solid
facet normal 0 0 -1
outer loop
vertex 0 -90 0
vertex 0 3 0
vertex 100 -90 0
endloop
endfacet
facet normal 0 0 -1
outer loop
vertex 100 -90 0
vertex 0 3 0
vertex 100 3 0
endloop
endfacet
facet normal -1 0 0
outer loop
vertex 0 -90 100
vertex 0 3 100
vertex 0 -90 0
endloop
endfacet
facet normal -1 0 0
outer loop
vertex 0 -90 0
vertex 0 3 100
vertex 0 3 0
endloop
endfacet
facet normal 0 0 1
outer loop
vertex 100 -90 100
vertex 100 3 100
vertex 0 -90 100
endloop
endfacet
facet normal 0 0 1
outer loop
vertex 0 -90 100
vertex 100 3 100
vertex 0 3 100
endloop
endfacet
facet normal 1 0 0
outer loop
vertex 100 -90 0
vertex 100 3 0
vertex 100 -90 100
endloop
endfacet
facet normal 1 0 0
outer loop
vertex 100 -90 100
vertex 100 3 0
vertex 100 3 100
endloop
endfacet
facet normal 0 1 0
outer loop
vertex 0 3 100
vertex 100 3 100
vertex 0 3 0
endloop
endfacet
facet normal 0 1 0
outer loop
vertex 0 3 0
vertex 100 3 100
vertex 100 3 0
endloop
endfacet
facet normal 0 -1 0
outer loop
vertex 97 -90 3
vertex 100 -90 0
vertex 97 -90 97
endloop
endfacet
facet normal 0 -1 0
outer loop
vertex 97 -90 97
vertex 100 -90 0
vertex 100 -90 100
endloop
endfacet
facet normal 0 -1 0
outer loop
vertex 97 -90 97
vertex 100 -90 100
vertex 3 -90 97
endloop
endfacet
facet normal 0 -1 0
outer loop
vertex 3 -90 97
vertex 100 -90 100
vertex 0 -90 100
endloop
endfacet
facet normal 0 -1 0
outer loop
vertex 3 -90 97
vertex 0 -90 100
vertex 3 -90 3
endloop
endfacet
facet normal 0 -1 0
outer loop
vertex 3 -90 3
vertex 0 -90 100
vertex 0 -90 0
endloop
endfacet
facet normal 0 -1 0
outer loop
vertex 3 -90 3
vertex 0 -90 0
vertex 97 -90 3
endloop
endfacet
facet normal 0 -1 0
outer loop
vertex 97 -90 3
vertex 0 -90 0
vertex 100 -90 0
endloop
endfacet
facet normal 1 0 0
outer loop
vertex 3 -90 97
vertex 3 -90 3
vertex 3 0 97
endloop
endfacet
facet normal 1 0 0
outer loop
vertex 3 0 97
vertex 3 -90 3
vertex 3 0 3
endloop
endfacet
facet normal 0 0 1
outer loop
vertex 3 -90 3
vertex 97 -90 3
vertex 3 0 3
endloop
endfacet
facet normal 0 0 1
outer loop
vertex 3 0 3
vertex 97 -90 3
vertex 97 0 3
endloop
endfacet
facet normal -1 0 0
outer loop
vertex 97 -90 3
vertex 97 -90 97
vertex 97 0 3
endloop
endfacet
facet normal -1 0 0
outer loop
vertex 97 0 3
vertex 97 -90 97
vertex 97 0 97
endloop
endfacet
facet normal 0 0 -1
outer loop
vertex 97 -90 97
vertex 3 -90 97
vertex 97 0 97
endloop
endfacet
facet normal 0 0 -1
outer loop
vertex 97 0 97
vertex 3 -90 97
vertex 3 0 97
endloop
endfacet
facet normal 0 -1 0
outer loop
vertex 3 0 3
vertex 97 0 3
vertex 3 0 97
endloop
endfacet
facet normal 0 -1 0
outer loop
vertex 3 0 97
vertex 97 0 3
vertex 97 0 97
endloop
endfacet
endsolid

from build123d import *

# Parameters (mm, degrees)
SKETCH_1_W      = 100
SKETCH_1_H      = 100
EXTRUDE_1_DEPTH = 3
SKETCH_1_3_W    = 100
SKETCH_1_3_H    = 100
SKETCH_1_3_W_2  = 94
SKETCH_1_3_H_2  = 94
EXTRUDE_2_DEPTH = 90


with BuildPart() as part:
    # 草图1 → 凸台-拉伸1 (new body)
    with BuildSketch(Plane(origin=(0, 0, 0), x_dir=(1, 0, 0), z_dir=(0, 1, 0))):
        with Locations((50, -50)):
            Rectangle(SKETCH_1_W, SKETCH_1_H)
    extrude(amount=EXTRUDE_1_DEPTH)

    # 草图1<3> → 凸台-拉伸2 (add)
    with BuildSketch(Plane(origin=(0, 0, 0), x_dir=(1, 0, 0), z_dir=(0, 1, 0))):
        with Locations((50, -50)):
            Rectangle(SKETCH_1_3_W, SKETCH_1_3_H)
        with Locations((50, -50)):
            Rectangle(SKETCH_1_3_W_2, SKETCH_1_3_H_2, mode=Mode.SUBTRACT)
    extrude(amount=-EXTRUDE_2_DEPTH)


solid = part.part
